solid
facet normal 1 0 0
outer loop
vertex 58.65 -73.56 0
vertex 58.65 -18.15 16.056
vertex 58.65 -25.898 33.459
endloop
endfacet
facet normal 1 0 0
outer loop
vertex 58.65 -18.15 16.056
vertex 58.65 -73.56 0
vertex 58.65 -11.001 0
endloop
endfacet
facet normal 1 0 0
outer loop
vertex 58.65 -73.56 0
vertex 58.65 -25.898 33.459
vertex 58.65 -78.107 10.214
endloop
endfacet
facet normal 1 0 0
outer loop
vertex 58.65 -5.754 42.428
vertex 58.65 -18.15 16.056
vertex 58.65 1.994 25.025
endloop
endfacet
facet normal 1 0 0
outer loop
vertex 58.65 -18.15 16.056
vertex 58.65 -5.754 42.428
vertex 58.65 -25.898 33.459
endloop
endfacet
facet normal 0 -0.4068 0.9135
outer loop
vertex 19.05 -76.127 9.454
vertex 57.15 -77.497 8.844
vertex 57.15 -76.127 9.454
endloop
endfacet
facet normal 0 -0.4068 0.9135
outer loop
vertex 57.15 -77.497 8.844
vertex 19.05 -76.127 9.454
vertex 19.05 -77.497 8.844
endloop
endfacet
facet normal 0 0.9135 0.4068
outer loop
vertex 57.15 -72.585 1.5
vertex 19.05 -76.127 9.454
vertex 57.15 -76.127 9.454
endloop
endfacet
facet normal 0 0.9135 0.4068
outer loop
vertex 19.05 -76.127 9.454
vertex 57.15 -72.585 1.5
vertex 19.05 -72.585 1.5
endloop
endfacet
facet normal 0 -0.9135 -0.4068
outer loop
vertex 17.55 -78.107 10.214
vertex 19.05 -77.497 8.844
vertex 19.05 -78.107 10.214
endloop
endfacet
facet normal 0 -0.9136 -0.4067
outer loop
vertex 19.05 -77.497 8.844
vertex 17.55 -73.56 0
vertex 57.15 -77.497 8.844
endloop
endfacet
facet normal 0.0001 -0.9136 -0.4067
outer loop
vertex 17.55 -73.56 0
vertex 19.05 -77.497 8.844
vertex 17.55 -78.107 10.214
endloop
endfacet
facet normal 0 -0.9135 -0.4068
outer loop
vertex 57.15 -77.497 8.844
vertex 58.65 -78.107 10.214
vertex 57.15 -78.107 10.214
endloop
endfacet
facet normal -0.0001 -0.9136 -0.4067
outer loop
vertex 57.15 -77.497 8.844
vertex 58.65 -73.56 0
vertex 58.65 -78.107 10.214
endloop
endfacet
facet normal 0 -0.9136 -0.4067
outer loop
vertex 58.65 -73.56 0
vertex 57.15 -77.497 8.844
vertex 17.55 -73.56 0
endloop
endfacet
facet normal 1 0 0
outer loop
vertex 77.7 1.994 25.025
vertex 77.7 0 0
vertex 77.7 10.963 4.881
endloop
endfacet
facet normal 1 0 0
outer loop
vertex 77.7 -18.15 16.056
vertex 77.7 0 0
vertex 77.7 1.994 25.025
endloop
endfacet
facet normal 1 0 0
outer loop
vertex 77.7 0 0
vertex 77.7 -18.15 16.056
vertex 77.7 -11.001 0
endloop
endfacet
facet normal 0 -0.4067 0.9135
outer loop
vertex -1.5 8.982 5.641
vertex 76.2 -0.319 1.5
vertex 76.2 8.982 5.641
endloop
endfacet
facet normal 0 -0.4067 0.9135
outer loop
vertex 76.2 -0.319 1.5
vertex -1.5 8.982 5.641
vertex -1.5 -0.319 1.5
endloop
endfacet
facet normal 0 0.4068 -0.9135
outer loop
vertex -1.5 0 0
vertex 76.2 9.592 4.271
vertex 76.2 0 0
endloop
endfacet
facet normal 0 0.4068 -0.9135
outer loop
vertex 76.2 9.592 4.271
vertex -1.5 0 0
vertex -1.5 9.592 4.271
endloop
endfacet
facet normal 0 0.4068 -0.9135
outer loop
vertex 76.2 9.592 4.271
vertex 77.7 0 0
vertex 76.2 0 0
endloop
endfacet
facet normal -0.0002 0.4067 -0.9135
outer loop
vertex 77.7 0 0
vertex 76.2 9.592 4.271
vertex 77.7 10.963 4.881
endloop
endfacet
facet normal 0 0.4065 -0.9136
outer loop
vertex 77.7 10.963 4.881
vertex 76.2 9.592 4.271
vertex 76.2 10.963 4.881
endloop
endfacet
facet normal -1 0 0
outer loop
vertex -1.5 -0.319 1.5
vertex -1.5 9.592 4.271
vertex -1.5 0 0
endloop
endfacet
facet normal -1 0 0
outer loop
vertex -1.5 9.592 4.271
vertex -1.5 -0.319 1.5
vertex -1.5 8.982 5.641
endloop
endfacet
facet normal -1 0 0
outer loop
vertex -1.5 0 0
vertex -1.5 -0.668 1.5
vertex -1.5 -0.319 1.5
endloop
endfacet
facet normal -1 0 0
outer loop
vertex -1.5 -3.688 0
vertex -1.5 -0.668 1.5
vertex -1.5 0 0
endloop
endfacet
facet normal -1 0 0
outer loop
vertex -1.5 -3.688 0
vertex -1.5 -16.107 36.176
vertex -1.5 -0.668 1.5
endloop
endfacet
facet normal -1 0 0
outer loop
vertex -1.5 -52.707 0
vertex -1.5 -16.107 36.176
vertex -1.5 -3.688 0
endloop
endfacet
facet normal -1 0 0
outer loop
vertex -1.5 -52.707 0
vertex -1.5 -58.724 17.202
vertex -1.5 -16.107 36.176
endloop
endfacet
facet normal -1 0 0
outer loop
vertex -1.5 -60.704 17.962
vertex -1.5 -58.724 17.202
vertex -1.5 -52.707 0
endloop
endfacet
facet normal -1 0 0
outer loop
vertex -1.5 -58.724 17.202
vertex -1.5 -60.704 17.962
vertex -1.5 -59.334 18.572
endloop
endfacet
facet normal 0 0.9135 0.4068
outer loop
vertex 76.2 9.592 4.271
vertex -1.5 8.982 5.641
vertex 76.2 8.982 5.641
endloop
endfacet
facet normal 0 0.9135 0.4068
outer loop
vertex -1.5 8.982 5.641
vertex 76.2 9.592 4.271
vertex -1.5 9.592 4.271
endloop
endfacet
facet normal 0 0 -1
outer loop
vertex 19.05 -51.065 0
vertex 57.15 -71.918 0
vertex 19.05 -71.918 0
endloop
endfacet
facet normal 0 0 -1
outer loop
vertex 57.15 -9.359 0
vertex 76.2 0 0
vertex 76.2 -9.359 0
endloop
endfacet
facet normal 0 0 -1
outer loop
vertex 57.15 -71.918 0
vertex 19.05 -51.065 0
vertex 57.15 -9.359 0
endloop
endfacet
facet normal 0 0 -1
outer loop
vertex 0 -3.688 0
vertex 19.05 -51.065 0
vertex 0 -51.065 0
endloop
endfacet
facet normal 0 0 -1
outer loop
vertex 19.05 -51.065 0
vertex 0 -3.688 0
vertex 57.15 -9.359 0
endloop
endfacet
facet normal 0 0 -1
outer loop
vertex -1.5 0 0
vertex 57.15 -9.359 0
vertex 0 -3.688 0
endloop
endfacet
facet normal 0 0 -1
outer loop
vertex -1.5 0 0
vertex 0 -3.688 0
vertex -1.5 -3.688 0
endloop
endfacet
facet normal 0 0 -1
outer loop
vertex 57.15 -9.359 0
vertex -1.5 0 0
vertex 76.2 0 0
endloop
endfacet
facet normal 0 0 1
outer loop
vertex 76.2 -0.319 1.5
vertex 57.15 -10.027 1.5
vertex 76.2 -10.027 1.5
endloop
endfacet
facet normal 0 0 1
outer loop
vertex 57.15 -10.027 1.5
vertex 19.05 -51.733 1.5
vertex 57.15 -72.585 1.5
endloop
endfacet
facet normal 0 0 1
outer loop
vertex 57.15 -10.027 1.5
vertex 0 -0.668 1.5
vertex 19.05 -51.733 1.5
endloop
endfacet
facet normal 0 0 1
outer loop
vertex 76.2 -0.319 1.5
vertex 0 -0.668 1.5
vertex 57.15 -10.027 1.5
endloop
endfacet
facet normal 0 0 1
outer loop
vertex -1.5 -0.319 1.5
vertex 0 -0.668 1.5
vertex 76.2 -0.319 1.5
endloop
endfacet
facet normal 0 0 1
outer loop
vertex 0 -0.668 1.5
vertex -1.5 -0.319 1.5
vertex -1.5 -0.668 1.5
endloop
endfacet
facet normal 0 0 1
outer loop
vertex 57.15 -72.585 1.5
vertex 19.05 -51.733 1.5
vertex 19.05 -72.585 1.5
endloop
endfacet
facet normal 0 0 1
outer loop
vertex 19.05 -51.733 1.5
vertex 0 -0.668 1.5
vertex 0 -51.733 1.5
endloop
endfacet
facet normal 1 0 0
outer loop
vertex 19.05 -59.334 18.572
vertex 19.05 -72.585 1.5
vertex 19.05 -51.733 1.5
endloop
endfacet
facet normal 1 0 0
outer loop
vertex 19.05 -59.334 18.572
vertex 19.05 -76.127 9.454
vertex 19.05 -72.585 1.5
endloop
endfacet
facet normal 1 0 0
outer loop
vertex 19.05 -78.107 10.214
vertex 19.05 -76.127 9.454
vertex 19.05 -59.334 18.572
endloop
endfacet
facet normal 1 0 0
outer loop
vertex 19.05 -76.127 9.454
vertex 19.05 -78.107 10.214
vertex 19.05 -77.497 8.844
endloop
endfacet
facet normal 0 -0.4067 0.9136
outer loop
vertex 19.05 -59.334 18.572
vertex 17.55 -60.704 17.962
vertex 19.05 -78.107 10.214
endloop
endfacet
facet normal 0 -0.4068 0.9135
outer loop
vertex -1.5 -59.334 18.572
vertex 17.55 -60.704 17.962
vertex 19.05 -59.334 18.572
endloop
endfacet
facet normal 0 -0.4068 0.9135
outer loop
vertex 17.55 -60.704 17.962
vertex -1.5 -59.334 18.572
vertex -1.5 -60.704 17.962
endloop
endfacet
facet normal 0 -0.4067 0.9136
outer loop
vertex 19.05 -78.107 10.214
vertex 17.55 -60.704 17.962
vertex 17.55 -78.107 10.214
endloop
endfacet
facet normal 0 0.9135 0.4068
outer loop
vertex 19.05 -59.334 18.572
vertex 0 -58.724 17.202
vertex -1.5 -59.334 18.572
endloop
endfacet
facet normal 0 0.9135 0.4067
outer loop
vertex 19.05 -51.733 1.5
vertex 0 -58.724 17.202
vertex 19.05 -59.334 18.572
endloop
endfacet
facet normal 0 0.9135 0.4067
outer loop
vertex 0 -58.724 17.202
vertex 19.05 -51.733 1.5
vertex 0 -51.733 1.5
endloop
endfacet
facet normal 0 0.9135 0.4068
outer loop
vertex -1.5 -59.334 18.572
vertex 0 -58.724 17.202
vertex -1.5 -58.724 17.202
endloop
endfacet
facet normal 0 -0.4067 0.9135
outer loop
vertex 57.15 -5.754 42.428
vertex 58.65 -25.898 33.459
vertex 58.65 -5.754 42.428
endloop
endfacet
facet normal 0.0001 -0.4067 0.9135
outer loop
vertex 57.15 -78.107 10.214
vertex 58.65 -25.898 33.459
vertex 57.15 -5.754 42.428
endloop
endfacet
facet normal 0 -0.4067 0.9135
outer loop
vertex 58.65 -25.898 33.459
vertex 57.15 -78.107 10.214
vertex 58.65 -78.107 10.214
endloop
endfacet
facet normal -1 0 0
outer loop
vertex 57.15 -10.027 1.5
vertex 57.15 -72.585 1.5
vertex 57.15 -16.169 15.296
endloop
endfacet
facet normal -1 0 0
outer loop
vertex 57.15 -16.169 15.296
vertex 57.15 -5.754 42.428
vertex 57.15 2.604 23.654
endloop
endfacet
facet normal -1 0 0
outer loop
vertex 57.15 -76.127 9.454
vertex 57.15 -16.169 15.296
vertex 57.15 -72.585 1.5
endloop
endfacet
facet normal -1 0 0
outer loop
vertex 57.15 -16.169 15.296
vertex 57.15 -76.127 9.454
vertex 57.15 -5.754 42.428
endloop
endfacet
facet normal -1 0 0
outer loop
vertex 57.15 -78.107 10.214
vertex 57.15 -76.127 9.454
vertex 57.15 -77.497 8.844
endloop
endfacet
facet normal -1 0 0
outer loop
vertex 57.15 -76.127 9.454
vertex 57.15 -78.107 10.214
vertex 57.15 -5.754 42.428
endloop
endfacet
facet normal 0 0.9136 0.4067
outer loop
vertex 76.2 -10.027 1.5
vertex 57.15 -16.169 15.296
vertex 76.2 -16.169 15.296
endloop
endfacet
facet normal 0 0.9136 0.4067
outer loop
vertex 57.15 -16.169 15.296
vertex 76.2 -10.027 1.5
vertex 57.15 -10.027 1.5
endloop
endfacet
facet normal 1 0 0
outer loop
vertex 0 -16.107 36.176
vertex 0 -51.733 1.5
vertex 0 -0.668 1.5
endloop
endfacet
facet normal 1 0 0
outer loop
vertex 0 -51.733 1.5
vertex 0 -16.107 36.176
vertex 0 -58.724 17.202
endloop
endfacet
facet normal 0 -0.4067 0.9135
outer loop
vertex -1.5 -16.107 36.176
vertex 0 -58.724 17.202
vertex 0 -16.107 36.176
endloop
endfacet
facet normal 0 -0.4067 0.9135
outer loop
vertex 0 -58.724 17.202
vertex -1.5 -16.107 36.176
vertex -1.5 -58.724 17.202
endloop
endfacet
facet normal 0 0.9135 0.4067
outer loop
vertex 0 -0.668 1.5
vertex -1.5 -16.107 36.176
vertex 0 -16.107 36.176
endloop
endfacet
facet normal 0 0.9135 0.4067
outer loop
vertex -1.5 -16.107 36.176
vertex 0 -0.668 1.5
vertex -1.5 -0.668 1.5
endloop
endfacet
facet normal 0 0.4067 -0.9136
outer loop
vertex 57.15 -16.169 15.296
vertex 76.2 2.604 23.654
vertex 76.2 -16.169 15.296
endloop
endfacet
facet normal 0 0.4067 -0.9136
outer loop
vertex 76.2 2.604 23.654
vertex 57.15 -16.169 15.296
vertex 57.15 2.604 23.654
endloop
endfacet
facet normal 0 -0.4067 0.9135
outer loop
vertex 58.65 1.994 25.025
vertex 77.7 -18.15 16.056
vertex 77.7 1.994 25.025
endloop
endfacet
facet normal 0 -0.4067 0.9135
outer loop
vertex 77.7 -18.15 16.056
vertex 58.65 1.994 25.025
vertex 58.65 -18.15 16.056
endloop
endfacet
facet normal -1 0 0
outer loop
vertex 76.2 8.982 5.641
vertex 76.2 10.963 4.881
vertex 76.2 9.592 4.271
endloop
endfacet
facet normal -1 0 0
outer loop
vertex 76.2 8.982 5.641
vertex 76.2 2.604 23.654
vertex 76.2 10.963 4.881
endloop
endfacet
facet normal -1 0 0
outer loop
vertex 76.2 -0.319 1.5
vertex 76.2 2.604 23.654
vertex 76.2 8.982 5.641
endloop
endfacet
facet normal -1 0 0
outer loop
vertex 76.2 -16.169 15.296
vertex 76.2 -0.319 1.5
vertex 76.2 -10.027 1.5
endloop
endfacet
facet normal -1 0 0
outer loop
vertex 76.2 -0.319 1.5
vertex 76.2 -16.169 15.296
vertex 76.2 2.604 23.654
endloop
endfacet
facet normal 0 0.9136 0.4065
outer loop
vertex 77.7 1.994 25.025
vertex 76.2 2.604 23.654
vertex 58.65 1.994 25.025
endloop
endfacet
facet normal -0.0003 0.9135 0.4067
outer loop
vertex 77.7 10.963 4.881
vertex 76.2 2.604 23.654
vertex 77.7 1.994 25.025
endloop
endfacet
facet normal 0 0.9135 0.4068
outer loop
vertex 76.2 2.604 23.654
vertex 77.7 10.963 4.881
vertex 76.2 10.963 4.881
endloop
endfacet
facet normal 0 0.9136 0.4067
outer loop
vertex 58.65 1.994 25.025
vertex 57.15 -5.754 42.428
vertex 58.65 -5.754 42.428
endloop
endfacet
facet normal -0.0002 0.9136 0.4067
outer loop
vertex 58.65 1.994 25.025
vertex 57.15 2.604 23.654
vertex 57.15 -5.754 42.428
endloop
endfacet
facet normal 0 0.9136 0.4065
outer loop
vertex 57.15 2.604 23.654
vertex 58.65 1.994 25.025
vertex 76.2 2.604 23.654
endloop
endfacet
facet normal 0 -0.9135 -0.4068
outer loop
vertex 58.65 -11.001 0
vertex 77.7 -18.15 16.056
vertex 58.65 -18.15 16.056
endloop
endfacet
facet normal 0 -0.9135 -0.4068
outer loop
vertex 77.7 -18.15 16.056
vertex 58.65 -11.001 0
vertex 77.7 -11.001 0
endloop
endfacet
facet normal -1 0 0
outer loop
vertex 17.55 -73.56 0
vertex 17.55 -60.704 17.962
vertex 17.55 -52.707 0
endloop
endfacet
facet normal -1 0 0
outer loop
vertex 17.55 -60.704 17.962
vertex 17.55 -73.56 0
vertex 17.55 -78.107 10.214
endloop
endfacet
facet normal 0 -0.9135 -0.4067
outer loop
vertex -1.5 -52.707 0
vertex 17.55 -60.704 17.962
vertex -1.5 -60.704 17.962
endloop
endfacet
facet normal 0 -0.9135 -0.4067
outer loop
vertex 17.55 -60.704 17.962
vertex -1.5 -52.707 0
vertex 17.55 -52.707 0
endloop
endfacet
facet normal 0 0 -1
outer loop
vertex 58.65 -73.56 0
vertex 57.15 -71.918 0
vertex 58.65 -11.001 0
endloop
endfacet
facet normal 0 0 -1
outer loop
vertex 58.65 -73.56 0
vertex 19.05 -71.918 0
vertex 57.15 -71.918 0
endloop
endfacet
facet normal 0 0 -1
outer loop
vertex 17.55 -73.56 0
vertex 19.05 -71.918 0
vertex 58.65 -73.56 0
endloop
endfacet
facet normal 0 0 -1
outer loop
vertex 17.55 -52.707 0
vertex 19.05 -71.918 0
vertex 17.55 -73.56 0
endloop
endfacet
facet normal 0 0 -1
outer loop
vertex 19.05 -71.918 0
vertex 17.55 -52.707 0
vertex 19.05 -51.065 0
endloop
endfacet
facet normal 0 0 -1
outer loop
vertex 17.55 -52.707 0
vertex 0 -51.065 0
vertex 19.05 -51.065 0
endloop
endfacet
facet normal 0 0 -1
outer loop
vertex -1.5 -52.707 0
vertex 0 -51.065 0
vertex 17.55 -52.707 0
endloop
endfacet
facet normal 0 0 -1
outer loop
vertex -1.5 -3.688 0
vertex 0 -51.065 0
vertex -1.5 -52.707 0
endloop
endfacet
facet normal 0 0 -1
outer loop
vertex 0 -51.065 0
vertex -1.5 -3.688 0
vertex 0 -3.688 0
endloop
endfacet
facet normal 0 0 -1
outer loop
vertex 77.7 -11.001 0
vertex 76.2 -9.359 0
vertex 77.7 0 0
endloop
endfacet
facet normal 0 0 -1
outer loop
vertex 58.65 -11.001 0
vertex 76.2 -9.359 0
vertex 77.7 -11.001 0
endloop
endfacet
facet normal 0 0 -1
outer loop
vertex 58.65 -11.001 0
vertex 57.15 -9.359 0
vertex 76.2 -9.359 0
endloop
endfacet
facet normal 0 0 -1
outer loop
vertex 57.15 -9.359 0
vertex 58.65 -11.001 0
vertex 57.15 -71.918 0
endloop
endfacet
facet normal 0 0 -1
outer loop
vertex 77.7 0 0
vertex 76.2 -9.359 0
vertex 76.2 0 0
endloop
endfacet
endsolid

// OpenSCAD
// STL output file loading just the base from Body.scad

include <Complete.scad>

rotate([rotation, 0, 0])
  translate([
    0,
    -4 * switch_plate_w + 9 + thickness,
    2 * switch_plate_w + thickness
  ])
  base();
